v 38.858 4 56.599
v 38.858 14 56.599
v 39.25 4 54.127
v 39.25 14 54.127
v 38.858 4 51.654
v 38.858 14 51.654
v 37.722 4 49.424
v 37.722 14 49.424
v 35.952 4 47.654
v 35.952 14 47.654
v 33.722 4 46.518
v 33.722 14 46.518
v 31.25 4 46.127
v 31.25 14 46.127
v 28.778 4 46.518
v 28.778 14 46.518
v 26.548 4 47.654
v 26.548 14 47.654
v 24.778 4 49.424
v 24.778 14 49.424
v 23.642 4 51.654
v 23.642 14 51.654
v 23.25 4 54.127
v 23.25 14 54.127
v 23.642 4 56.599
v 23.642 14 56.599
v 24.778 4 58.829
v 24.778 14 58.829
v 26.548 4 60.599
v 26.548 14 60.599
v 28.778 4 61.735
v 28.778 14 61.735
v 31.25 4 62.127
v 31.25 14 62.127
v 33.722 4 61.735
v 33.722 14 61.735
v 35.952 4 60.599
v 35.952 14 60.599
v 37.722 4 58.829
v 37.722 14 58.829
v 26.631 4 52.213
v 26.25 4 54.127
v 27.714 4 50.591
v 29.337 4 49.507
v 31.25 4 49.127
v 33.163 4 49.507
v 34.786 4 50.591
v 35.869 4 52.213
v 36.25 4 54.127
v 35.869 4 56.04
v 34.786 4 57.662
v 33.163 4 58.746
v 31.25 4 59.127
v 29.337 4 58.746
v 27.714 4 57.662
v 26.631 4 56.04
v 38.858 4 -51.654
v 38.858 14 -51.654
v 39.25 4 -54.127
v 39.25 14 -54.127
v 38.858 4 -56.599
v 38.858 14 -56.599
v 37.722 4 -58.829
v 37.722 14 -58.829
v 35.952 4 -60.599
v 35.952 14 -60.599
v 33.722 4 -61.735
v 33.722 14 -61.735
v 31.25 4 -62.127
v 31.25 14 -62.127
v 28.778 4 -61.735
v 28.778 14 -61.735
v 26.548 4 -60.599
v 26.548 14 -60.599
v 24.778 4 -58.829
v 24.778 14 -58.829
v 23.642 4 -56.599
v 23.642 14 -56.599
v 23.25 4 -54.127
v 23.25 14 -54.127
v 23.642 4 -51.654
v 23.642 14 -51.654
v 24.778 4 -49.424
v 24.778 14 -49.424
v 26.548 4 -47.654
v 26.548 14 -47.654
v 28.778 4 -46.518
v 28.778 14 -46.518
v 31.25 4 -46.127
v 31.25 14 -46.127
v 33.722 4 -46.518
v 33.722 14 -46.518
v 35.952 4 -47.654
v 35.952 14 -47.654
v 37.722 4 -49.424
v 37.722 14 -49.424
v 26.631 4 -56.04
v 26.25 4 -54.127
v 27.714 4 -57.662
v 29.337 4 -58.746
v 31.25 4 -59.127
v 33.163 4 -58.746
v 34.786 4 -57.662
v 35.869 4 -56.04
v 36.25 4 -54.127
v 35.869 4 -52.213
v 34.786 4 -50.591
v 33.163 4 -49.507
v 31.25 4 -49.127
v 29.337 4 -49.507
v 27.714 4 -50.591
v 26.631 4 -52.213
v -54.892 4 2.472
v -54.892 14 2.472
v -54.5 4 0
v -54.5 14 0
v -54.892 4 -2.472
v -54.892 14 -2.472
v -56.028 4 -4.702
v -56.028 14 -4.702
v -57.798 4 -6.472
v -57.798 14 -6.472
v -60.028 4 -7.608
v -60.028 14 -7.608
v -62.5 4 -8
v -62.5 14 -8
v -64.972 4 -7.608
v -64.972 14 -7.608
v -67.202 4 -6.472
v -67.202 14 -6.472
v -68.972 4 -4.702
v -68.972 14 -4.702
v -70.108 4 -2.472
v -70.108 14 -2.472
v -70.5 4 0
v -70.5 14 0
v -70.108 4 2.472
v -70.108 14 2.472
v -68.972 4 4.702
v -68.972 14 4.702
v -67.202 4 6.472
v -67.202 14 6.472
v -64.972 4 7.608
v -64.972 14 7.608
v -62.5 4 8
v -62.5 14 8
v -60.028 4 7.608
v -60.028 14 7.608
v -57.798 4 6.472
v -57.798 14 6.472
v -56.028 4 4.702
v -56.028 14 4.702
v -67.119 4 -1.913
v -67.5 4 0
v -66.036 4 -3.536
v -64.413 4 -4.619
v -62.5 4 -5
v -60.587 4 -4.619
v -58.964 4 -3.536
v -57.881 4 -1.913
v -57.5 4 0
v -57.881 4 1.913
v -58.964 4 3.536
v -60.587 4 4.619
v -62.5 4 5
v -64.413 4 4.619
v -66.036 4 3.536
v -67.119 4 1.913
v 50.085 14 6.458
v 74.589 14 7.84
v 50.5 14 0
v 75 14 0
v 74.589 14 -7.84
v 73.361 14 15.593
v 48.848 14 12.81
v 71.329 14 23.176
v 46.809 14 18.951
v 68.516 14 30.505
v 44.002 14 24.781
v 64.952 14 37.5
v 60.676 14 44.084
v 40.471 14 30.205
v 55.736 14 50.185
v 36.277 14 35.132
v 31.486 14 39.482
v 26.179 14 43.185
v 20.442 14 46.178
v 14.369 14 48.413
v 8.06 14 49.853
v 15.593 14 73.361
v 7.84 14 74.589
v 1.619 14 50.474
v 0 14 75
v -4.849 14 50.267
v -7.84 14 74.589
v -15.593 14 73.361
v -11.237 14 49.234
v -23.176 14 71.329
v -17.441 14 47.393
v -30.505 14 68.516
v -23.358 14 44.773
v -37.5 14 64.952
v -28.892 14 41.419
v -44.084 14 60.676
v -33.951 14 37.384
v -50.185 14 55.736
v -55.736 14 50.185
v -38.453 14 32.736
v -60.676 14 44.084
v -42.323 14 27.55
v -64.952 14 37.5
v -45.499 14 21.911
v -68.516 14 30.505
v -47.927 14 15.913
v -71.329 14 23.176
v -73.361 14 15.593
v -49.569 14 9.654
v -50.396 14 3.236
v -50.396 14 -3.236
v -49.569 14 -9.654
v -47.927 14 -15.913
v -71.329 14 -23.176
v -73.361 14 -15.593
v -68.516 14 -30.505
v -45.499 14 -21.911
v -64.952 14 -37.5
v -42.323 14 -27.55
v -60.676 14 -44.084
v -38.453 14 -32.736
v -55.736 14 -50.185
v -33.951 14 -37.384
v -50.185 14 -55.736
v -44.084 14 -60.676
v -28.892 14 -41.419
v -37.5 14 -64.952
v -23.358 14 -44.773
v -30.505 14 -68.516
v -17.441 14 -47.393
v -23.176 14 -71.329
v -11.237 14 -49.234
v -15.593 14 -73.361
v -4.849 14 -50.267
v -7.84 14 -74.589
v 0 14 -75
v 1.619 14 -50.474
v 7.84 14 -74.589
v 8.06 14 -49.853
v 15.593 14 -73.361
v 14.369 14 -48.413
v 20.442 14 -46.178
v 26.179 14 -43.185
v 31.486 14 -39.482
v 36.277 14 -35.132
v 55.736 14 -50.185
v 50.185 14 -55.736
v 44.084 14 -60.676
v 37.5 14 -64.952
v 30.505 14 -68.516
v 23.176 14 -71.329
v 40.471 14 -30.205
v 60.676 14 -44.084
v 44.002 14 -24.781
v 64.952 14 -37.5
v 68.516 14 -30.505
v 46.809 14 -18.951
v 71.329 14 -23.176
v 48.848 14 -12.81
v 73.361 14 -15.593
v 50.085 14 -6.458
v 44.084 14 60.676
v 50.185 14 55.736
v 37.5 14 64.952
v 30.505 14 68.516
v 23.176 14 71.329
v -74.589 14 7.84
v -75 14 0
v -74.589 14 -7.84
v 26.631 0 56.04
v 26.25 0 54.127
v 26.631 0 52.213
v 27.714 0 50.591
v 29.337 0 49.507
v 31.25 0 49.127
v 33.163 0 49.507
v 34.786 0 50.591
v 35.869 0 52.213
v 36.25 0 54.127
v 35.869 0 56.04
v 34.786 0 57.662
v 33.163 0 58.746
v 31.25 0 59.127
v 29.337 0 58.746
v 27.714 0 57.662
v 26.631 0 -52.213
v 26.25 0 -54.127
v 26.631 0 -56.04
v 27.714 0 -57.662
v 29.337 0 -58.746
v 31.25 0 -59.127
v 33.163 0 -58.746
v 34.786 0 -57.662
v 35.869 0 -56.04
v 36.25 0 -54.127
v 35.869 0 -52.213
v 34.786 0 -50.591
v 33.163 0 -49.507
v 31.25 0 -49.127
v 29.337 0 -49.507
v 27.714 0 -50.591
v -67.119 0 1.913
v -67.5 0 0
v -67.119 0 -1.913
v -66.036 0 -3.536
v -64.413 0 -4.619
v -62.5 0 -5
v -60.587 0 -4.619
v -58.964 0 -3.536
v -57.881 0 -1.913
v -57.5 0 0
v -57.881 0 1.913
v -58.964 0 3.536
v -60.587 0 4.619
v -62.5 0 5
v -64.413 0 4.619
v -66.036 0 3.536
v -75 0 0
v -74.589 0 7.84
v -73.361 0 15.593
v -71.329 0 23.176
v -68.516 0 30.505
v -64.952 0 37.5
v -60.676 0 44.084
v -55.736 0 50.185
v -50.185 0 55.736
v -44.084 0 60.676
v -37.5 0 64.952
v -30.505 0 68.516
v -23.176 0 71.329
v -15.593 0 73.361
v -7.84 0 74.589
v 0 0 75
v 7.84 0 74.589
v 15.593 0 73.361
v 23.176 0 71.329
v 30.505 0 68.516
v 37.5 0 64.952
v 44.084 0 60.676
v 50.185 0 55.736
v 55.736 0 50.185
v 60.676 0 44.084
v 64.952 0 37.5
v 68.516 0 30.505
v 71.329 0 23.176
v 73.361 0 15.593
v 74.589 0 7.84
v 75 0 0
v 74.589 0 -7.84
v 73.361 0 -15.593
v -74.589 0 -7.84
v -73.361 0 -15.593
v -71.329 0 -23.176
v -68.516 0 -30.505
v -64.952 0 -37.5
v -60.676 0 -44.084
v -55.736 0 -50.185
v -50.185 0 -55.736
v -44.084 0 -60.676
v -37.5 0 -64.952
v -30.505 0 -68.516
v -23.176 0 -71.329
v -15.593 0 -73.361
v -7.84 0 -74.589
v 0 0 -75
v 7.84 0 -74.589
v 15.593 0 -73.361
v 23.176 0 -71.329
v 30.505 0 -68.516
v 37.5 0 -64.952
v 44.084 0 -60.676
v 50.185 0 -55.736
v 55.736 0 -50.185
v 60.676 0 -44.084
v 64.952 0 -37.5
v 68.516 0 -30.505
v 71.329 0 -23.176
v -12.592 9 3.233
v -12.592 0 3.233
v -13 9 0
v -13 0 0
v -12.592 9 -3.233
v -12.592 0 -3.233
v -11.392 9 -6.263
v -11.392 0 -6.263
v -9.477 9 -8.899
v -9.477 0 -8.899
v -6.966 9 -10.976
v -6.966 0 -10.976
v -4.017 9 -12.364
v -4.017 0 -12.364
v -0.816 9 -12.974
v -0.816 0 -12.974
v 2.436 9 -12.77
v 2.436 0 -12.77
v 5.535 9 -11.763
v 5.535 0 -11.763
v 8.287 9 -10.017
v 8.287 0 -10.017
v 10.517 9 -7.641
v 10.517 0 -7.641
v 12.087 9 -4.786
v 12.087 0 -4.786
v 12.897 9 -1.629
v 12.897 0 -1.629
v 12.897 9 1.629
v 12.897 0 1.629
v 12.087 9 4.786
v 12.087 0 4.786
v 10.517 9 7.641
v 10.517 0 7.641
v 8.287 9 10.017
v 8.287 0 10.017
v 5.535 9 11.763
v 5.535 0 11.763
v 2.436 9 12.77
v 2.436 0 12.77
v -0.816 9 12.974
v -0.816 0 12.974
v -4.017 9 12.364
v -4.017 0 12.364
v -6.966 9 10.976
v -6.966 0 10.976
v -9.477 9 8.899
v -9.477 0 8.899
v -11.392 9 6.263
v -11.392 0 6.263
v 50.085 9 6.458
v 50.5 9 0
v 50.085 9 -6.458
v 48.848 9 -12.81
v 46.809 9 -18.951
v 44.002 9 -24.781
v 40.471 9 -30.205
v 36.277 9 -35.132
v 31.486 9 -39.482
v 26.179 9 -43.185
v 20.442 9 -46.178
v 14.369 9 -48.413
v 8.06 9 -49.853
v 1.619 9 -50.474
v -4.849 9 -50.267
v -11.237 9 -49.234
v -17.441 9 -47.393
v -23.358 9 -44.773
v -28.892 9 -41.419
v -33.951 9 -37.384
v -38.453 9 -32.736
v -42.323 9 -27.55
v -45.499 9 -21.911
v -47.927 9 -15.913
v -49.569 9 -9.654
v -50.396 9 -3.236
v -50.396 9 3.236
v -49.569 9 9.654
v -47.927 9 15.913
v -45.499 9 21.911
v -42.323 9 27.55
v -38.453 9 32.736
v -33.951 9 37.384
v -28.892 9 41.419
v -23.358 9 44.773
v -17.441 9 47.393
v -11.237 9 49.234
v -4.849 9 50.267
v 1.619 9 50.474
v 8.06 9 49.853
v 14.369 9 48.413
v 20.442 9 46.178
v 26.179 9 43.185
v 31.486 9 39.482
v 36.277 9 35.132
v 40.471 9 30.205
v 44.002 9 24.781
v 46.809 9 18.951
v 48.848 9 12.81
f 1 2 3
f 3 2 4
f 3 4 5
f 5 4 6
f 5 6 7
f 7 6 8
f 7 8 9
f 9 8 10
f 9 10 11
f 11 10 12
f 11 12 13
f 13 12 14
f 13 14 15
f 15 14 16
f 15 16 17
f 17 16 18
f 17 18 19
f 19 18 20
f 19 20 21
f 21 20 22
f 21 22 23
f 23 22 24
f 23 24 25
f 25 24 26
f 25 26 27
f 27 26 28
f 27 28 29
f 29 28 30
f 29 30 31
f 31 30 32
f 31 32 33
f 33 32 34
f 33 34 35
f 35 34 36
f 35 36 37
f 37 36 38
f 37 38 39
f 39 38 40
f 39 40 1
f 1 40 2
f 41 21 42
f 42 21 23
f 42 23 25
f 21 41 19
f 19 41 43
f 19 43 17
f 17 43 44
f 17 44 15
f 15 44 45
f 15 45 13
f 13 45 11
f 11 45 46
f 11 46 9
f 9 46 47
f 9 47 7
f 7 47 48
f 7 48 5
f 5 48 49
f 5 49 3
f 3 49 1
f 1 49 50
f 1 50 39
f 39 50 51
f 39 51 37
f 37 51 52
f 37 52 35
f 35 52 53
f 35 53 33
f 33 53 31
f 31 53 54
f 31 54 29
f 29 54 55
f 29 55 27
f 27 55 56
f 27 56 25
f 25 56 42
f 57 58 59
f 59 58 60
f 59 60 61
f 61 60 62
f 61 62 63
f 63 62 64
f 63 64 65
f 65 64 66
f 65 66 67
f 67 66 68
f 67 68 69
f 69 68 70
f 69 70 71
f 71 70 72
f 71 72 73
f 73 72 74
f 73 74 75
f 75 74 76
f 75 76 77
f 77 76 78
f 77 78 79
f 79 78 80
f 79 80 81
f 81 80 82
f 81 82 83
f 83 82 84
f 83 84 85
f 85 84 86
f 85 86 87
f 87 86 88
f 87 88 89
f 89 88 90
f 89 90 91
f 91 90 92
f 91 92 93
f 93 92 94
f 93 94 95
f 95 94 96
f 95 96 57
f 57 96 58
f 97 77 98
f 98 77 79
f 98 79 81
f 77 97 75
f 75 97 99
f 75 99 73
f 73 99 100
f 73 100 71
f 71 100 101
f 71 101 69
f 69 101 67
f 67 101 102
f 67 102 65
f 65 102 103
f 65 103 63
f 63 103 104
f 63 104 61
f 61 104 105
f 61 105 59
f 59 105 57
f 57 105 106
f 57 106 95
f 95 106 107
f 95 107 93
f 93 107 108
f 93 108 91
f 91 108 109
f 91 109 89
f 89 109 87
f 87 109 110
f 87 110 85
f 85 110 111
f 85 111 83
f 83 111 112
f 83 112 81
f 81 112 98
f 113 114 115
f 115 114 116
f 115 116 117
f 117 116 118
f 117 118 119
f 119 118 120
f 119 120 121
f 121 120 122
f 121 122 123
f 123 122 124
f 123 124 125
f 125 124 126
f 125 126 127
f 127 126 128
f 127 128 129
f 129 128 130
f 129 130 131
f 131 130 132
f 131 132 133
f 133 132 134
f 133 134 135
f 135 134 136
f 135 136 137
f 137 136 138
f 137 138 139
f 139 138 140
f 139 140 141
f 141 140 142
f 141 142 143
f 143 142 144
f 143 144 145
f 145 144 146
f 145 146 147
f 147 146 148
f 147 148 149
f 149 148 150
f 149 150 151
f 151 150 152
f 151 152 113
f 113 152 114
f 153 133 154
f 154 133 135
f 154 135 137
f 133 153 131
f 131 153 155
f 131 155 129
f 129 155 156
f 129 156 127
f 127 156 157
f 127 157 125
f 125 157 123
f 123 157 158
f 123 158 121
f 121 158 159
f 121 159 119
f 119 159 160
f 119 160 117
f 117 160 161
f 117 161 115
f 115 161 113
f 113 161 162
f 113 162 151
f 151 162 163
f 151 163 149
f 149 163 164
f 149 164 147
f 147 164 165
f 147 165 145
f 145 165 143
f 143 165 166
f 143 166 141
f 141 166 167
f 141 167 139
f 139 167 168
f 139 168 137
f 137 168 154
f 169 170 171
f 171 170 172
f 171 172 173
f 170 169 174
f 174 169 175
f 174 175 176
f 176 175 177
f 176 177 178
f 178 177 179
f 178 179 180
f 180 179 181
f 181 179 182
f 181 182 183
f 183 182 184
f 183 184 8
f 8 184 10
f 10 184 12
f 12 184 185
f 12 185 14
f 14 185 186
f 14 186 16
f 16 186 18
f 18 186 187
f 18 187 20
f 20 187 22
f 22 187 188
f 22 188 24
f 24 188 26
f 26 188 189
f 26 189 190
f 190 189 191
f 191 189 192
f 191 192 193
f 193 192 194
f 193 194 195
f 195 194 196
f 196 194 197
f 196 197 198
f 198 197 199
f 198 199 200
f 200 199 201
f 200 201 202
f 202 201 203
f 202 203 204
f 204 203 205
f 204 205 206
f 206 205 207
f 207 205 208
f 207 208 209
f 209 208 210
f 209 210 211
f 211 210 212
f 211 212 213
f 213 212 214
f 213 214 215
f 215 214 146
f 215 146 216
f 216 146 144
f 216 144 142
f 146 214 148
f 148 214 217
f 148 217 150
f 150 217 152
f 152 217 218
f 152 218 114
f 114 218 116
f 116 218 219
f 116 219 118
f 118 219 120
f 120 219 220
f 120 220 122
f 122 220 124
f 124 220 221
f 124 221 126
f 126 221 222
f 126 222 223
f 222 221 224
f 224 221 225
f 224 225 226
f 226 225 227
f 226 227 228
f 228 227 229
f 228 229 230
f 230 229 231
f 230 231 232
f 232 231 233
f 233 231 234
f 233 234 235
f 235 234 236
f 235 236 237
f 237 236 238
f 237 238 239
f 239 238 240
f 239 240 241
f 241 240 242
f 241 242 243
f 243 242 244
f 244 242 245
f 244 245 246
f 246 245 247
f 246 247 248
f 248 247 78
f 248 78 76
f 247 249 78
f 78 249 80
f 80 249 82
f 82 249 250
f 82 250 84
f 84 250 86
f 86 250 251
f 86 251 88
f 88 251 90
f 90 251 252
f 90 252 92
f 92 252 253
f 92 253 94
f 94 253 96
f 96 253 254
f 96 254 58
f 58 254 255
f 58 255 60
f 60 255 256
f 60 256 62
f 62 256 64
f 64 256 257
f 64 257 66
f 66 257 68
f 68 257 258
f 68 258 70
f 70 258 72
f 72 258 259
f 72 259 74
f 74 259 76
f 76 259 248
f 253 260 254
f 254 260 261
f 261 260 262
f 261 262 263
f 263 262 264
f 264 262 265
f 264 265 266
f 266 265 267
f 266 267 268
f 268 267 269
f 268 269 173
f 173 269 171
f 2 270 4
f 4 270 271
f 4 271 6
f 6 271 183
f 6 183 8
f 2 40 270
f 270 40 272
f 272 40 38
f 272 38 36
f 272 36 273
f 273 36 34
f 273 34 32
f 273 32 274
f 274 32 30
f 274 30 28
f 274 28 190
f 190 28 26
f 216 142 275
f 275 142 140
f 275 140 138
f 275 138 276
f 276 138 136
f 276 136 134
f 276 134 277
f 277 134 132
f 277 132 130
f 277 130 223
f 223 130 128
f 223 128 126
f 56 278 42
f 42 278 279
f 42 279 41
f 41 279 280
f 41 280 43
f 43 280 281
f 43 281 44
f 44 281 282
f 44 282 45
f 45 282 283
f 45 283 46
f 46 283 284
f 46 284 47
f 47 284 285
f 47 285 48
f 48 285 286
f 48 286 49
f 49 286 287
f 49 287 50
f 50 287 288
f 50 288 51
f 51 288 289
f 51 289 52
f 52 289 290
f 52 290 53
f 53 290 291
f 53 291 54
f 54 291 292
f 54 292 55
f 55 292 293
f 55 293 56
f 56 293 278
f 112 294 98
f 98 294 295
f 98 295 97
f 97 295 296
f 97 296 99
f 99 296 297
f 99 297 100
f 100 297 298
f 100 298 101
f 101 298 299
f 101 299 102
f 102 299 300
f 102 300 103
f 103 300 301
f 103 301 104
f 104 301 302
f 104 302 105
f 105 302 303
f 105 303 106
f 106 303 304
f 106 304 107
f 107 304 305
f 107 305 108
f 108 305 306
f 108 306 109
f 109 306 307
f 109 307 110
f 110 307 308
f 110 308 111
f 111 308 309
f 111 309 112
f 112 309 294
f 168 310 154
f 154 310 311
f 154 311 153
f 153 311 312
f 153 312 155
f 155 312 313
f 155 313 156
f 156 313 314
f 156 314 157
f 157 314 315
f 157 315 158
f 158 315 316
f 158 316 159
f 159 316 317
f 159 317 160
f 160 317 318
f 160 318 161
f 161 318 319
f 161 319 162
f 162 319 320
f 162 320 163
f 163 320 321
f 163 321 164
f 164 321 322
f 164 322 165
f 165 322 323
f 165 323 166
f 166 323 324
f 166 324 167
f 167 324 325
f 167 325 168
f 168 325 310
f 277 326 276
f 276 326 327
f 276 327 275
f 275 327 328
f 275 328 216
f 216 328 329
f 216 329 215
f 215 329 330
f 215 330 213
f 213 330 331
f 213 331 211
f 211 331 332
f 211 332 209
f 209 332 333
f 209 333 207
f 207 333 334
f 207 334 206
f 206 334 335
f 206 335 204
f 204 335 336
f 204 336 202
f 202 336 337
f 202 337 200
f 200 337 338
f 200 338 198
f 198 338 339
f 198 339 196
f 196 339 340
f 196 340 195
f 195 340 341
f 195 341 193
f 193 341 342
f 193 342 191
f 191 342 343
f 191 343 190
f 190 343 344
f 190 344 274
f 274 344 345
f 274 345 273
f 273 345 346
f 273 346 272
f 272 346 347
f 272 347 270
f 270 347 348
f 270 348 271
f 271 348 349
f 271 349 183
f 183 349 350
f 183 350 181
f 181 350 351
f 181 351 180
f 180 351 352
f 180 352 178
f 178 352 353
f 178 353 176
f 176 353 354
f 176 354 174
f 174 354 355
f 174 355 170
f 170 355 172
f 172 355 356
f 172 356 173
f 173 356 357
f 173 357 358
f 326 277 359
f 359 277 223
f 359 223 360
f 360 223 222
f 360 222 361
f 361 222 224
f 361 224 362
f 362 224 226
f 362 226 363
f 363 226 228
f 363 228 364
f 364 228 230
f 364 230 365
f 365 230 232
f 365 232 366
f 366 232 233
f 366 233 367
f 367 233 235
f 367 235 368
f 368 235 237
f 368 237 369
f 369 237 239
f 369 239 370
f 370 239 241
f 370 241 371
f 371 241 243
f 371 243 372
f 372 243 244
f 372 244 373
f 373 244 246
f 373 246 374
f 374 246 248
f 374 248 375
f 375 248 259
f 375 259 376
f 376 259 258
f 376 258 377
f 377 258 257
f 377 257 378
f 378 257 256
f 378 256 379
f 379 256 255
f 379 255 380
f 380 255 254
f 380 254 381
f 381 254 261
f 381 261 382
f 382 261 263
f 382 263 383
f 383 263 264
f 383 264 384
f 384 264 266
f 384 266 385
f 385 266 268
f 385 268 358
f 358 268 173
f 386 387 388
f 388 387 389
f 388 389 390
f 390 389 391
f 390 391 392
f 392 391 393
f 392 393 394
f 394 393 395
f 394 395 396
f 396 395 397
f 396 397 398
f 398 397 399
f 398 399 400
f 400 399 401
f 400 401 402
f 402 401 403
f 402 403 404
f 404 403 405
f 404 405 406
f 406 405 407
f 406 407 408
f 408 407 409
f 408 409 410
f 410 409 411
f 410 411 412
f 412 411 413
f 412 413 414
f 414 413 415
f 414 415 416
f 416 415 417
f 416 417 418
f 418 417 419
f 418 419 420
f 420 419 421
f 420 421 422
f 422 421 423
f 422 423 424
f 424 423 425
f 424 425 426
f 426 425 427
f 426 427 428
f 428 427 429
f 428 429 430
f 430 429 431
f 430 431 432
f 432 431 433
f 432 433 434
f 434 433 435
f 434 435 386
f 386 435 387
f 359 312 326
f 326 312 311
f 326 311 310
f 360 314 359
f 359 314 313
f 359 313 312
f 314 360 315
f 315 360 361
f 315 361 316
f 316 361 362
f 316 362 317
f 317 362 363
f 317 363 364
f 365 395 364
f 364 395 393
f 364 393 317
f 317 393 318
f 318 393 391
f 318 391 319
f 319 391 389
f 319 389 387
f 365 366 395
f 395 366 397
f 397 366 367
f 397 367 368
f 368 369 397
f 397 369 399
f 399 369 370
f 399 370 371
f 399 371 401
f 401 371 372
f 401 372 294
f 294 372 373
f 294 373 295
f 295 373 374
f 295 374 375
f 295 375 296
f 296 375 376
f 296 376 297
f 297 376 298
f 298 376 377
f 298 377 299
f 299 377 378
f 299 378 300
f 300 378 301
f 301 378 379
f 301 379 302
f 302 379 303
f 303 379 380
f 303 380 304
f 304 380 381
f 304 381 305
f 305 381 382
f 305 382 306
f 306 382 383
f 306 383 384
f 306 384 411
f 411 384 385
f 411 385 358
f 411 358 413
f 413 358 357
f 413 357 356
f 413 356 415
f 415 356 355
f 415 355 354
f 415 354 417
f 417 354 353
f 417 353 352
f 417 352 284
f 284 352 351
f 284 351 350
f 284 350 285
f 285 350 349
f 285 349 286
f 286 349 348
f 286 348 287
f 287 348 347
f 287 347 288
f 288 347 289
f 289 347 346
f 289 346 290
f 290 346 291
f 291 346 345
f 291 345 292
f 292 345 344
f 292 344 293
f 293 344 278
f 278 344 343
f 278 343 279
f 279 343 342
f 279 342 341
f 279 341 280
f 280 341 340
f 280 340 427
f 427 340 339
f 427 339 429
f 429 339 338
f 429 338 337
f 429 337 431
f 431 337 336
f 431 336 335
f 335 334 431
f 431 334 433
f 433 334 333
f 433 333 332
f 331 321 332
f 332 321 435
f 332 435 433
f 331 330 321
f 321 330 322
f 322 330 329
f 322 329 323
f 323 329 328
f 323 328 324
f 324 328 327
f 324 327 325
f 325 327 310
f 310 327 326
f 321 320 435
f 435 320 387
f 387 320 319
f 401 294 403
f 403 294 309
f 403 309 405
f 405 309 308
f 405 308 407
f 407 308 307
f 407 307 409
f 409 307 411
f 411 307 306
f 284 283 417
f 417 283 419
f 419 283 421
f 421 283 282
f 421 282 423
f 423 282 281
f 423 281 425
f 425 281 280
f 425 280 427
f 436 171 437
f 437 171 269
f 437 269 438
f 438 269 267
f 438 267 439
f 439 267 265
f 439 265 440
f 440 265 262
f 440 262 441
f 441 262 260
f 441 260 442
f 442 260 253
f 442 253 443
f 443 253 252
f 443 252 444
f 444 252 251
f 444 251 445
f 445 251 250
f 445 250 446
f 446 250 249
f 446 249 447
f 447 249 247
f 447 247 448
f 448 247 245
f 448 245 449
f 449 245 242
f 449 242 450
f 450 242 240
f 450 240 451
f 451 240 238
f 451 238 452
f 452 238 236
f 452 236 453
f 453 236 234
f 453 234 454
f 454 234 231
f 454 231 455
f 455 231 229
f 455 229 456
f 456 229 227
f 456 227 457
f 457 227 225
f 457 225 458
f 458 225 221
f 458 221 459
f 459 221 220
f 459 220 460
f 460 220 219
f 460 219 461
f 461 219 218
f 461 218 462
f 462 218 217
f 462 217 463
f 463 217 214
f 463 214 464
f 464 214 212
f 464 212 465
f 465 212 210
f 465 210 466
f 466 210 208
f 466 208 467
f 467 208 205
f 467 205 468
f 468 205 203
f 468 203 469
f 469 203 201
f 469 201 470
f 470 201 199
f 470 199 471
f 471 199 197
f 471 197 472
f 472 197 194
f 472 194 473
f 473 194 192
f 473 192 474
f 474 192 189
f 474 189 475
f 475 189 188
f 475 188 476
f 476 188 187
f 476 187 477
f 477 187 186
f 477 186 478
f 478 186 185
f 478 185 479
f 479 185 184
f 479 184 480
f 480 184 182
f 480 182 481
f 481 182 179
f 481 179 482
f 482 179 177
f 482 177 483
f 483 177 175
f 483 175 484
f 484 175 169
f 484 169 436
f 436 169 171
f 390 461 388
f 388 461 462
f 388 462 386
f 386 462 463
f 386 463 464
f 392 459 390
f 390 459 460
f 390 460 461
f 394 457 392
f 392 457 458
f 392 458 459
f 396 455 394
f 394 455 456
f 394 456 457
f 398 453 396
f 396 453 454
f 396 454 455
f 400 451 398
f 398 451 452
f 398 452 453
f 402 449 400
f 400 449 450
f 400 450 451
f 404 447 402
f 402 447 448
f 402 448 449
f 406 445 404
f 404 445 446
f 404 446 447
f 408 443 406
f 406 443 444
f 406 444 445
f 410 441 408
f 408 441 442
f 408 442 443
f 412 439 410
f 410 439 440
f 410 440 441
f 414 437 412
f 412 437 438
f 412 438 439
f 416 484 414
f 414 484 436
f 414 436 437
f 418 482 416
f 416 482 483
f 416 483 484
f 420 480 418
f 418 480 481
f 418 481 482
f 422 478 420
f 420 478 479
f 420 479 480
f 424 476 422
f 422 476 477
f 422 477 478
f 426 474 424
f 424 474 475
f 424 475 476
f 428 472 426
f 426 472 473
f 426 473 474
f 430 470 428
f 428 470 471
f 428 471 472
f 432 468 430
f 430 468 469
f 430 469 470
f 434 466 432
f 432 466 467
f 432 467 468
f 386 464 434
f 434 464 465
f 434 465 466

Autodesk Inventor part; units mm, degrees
ref_plane "YZ Plane" through (0, 0, 0) normal (1, 0, 0) x (0, 1, 0)
ref_plane "XZ Plane" through (0, 0, 0) normal (0, 1, 0) x (-1, 0, 0)
ref_plane "XY Plane" through (0, 0, 0) normal (0, 0, 1) x (1, 0, 0)
sketch "Boceto1" plane through (0, 0, 0) normal (0, 1, 0) x (-1, 0, 0)
  circle A0 centre (0, 0) radius 75
  circle A1 centre (62.5, 0) radius 5
  circle A2 centre (62.5, 0) radius 8
  circle A3 centre (0, 0) radius 13
  circle A4 centre (-31.25, -54.1266) radius 5
  circle A5 centre (-31.25, -54.1266) radius 8
  circle A6 centre (-31.25, 54.1266) radius 5
  circle A7 centre (-31.25, 54.1266) radius 8
  dimension "d0" = 150
  dimension "d1" = 10
  dimension "d2" = 16
  dimension "d3" = 26
  dimension "d4" = 10
  dimension "d5" = 16
  dimension "d6" = 10
  dimension "d7" = 16
extrude "Extrusión1" add sketch "Boceto1" along normal blind 14 contours A0 | A2 | A5 | A7
sketch "Boceto2" plane through (0, 14, 0) normal (0, 1, 0) x (1, 0, 0)
  point P0 (0, 0)
sketch "Boceto3" plane through (0, 14, 0) normal (0, 1, 0) x (1, 0, 0)
  circle A0 centre (0, 0) radius 50.5
  circle A1 centre (-62.5, 0) radius 8
  circle A2 centre (31.25, 54.1266) radius 5 projected
  circle A3 centre (31.25, 54.1266) radius 8
  circle A4 centre (31.25, -54.1266) radius 5 projected
  circle A5 centre (31.25, -54.1266) radius 8
  dimension "d10" = 101
  dimension "d11" = 16
  dimension "d12" = 16
  dimension "d13" = 16
extrude "Extrusión2" cut sketch "Boceto3" against normal blind 10 contours A1 | A2 | A3 | A4 | A5
extrude "Extrusión3" cut sketch "Boceto3" against normal blind 5 contours A0
properties part number "1.1.5.UpperSta.Plate"
